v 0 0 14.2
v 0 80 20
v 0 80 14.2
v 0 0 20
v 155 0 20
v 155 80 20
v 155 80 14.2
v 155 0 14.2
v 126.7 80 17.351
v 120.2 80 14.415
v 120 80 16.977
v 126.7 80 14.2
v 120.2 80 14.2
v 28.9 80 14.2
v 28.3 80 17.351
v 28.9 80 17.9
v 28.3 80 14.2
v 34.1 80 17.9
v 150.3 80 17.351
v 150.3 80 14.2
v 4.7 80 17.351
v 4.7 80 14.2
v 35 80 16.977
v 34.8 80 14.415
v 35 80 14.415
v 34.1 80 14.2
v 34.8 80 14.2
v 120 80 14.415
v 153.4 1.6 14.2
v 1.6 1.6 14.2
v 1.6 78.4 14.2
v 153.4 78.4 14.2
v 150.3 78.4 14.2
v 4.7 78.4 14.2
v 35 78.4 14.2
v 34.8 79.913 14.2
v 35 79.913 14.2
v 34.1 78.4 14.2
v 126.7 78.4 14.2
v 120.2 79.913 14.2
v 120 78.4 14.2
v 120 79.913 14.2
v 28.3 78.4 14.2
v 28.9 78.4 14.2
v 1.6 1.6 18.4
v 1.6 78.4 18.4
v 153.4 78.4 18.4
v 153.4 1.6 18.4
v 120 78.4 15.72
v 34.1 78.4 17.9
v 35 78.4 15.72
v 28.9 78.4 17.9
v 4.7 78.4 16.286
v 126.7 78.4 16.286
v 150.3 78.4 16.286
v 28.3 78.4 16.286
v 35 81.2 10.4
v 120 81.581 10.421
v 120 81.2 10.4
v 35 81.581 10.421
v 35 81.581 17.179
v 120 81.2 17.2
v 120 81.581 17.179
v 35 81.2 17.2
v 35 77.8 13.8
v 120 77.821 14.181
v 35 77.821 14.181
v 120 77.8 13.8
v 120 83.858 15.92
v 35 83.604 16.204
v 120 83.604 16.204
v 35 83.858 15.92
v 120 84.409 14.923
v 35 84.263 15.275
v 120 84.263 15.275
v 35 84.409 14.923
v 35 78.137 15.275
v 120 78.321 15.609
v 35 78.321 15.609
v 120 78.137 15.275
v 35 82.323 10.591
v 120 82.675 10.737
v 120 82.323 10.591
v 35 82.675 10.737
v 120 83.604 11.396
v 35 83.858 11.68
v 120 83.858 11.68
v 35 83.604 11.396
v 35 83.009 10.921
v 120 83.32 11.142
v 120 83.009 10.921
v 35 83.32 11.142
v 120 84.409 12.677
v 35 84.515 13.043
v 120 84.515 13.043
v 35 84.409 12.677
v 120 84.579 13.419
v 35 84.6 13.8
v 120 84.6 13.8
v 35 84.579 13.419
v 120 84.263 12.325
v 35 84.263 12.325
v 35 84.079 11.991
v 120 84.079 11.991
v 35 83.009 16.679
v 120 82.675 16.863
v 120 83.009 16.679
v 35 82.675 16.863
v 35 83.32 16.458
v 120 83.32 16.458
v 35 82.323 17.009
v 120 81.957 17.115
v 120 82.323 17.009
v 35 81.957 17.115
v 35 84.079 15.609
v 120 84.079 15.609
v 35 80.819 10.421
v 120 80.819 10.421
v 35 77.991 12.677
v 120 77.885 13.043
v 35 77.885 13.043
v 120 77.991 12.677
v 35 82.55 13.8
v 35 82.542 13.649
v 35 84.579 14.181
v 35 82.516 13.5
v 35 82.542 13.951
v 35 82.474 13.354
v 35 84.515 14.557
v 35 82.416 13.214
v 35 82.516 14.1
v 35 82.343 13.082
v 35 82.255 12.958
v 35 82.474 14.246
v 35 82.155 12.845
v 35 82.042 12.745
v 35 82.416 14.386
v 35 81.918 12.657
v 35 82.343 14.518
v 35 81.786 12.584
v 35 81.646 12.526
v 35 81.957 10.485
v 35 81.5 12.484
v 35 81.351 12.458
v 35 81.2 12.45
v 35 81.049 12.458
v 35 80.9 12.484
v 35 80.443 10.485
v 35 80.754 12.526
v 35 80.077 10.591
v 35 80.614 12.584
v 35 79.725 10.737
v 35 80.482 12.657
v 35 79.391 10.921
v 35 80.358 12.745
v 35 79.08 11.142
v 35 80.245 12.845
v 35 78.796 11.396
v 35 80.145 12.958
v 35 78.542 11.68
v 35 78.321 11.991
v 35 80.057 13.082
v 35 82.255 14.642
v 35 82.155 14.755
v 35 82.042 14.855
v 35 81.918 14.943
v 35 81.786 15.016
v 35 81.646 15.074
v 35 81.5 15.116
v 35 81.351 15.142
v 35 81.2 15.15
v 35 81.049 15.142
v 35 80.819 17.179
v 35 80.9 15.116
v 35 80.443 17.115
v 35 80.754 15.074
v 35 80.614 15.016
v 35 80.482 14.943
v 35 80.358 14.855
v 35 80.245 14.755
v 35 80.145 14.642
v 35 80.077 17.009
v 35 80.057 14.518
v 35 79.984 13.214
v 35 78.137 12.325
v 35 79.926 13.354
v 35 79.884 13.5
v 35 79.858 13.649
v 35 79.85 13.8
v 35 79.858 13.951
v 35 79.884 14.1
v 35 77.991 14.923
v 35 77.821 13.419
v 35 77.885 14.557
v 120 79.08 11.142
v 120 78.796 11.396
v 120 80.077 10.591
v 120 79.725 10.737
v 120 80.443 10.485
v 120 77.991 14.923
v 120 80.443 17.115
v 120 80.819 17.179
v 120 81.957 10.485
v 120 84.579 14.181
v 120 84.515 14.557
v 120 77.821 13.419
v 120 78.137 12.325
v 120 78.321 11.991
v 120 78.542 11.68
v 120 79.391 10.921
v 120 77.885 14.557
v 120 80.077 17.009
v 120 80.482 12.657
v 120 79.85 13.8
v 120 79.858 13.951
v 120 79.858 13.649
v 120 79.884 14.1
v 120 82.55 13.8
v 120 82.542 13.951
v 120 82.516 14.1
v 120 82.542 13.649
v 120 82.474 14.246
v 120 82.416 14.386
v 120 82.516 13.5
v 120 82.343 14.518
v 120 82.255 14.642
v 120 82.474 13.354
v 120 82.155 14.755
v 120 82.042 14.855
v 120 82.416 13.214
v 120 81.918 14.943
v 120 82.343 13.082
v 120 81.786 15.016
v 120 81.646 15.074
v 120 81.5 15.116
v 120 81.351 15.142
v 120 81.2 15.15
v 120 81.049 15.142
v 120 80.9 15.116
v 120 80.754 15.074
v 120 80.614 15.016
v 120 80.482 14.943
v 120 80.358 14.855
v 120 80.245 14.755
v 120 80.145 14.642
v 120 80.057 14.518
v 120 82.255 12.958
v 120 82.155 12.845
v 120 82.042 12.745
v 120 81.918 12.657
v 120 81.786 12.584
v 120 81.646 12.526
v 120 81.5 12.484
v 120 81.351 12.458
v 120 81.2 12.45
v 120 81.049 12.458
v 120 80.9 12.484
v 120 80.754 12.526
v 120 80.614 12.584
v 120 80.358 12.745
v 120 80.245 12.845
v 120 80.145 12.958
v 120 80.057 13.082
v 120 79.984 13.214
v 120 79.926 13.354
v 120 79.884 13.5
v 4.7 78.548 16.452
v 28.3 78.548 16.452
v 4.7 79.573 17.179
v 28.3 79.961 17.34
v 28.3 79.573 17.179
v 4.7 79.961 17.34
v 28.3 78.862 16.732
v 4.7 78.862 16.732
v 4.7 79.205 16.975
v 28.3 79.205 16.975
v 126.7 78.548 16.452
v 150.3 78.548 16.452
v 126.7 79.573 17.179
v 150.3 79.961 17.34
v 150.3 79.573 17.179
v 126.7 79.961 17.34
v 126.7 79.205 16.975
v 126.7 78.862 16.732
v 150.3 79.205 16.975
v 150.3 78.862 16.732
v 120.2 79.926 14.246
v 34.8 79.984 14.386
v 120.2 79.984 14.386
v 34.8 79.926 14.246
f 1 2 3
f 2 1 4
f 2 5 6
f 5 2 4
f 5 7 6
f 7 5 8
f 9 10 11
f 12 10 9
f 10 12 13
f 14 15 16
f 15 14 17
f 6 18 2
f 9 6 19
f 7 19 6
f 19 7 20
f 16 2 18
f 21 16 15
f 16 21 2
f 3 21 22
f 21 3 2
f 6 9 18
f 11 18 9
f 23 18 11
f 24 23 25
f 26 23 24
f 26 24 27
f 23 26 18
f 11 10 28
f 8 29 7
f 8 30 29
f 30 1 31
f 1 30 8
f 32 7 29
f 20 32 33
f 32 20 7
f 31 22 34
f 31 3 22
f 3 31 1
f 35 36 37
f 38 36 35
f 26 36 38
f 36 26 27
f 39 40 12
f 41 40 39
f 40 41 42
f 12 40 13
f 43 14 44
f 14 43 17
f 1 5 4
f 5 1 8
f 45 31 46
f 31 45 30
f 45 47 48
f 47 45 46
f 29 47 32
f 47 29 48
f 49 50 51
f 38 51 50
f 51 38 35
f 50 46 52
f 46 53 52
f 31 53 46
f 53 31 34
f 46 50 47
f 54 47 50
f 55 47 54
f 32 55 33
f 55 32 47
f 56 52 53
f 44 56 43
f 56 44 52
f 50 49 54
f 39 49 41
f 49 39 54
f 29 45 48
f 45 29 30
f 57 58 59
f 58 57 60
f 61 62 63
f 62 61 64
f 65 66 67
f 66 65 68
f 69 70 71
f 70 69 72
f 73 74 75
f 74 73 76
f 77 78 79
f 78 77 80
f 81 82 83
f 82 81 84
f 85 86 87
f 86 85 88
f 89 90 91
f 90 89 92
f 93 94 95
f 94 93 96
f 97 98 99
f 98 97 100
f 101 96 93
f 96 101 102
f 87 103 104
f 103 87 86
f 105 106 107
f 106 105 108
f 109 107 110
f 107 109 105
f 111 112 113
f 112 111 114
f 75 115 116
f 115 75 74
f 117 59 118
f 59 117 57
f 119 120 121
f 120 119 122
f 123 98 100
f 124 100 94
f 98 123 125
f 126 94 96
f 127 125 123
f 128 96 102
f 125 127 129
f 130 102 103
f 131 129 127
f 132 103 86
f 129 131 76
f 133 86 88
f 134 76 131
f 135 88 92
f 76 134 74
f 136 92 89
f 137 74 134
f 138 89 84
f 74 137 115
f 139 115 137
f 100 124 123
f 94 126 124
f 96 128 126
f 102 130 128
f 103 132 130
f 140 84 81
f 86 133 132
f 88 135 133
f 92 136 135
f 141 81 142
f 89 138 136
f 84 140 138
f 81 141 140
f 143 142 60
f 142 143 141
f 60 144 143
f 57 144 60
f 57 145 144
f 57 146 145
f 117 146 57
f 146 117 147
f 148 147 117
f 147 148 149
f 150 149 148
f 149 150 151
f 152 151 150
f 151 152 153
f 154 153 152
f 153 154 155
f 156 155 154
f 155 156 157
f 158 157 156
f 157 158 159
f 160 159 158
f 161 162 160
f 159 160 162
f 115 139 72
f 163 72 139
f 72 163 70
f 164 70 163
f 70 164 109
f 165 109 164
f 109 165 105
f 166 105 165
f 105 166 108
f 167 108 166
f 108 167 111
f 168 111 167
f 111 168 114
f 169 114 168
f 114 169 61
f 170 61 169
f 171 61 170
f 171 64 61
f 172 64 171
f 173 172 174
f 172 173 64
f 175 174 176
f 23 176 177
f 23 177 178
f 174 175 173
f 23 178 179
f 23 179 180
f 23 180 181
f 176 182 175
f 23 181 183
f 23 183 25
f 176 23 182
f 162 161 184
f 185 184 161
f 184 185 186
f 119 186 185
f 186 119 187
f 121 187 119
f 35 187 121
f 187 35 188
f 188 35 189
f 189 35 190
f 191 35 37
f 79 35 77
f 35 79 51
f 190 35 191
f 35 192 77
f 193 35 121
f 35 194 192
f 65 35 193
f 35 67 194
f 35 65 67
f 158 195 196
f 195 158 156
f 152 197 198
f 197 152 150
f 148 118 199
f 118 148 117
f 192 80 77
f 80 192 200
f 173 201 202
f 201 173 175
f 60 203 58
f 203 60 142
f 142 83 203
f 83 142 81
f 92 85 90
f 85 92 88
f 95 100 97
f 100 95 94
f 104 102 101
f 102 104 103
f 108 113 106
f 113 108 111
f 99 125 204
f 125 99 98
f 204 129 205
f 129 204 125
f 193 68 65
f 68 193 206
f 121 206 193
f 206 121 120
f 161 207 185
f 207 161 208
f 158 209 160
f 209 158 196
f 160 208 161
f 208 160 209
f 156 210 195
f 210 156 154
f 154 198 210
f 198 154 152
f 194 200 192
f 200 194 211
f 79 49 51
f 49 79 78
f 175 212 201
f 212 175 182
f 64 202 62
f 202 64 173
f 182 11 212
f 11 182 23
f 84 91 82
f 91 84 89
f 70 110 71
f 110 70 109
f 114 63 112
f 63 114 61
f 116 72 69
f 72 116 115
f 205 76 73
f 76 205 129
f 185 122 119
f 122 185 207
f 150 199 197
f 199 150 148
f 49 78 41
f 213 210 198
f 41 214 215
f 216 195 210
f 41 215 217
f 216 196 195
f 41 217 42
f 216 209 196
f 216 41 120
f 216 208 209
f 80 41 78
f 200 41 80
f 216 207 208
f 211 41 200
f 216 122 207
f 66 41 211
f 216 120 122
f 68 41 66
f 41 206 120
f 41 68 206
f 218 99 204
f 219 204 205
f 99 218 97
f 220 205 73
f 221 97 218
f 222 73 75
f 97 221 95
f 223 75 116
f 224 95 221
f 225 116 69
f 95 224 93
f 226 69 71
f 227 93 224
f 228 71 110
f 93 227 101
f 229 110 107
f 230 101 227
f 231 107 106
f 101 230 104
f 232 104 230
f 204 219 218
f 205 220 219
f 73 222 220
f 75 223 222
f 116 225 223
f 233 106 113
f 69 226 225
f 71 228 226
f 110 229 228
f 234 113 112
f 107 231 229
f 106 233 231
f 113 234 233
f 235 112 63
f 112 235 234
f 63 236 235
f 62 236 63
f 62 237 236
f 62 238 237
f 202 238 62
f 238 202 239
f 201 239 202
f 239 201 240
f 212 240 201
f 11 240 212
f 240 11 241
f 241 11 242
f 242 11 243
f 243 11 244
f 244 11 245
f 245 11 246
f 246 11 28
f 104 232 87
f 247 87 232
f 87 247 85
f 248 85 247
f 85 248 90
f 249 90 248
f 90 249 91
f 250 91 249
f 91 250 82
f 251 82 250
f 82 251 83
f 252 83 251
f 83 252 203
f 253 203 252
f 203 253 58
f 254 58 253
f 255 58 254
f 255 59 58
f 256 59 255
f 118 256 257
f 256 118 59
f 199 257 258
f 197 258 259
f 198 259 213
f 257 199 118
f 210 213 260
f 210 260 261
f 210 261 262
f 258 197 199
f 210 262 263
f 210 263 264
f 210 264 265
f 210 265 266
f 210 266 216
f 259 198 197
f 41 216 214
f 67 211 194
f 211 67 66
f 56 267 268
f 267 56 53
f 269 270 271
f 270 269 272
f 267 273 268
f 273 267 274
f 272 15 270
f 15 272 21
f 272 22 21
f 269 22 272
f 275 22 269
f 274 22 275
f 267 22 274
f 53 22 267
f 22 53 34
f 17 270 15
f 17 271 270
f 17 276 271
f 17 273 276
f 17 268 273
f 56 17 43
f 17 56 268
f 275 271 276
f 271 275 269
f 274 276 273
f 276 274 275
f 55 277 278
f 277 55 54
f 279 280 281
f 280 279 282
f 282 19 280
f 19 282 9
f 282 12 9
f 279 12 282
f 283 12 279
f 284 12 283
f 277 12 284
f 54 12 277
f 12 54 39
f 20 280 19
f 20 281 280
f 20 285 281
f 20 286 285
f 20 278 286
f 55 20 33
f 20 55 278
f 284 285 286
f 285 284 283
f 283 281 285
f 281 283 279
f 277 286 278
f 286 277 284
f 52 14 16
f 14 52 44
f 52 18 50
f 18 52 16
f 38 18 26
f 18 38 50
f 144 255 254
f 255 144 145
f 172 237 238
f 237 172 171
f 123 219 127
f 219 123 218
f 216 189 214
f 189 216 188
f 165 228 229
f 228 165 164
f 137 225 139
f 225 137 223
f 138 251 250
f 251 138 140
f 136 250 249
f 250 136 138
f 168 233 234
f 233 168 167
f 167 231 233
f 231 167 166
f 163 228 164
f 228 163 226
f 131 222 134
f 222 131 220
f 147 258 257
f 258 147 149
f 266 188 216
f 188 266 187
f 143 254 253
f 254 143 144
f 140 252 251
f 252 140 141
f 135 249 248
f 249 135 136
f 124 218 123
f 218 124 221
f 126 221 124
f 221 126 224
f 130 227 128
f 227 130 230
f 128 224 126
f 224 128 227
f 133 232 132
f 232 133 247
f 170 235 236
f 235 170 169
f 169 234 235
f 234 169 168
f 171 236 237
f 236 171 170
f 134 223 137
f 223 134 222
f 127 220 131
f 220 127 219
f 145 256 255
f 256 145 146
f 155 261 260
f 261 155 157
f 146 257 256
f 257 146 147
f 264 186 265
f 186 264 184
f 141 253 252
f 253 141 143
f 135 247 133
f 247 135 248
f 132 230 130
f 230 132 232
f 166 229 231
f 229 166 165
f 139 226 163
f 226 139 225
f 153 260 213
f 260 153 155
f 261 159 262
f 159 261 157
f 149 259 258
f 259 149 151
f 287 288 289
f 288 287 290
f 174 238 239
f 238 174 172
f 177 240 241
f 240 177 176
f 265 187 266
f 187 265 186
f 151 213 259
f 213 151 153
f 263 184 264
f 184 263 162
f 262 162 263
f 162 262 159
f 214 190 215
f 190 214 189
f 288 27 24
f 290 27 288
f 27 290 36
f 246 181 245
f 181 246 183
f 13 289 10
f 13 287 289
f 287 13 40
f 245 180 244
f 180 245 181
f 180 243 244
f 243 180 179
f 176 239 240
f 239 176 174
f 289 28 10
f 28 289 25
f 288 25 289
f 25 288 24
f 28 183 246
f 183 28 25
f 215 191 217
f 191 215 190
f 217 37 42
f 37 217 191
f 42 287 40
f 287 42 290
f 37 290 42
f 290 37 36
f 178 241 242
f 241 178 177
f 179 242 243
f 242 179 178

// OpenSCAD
// Generated by Mecha-Splicer: clamshell_terminal v1
// Dimension-based CAD ONLY: unknown PCB screw positions, USB access and real fit.
// lid / display tray (down-facing open pocket at closed angle), all dimensions in mm
$fn=56;
W=155.0; D=80.0; wall=1.6; floor=1.6;
HBASE=13.4; HLID=5.8; gap=0.8;
hy=81.2; hz=13.8;
kr=3.4; bore=2.7;

module lid_shell() {
  difference() {
    union() {
      difference() {
        translate([0,0,14.200000000000001]) cube([W,D,HLID]);
        translate([wall,wall,14.100000000000001]) cube([W-2*wall,D-2*wall,HLID-floor+0.1]);
      }
      translate([35.0,hy,hz]) rotate([0,90,0]) cylinder(h=85.0,r=kr);
    }
    // Lid-side four-wire cable entry (opposed to left-side base slot)
    translate([28.9,78.30000000000001,14.100000000000001]) cube([5.2,1.8,3.8000000000000003]);
    // Relief for two base knuckles entering lid rear wall at all open angles
    for (x=[4.7,126.7]) translate([x,hy,hz]) rotate([0,90,0]) cylinder(h=23.6,r=3.75);
    translate([34.8,hy,hz]) rotate([0,90,0]) cylinder(h=85.4,d=bore);
  }
}
lid_shell();
